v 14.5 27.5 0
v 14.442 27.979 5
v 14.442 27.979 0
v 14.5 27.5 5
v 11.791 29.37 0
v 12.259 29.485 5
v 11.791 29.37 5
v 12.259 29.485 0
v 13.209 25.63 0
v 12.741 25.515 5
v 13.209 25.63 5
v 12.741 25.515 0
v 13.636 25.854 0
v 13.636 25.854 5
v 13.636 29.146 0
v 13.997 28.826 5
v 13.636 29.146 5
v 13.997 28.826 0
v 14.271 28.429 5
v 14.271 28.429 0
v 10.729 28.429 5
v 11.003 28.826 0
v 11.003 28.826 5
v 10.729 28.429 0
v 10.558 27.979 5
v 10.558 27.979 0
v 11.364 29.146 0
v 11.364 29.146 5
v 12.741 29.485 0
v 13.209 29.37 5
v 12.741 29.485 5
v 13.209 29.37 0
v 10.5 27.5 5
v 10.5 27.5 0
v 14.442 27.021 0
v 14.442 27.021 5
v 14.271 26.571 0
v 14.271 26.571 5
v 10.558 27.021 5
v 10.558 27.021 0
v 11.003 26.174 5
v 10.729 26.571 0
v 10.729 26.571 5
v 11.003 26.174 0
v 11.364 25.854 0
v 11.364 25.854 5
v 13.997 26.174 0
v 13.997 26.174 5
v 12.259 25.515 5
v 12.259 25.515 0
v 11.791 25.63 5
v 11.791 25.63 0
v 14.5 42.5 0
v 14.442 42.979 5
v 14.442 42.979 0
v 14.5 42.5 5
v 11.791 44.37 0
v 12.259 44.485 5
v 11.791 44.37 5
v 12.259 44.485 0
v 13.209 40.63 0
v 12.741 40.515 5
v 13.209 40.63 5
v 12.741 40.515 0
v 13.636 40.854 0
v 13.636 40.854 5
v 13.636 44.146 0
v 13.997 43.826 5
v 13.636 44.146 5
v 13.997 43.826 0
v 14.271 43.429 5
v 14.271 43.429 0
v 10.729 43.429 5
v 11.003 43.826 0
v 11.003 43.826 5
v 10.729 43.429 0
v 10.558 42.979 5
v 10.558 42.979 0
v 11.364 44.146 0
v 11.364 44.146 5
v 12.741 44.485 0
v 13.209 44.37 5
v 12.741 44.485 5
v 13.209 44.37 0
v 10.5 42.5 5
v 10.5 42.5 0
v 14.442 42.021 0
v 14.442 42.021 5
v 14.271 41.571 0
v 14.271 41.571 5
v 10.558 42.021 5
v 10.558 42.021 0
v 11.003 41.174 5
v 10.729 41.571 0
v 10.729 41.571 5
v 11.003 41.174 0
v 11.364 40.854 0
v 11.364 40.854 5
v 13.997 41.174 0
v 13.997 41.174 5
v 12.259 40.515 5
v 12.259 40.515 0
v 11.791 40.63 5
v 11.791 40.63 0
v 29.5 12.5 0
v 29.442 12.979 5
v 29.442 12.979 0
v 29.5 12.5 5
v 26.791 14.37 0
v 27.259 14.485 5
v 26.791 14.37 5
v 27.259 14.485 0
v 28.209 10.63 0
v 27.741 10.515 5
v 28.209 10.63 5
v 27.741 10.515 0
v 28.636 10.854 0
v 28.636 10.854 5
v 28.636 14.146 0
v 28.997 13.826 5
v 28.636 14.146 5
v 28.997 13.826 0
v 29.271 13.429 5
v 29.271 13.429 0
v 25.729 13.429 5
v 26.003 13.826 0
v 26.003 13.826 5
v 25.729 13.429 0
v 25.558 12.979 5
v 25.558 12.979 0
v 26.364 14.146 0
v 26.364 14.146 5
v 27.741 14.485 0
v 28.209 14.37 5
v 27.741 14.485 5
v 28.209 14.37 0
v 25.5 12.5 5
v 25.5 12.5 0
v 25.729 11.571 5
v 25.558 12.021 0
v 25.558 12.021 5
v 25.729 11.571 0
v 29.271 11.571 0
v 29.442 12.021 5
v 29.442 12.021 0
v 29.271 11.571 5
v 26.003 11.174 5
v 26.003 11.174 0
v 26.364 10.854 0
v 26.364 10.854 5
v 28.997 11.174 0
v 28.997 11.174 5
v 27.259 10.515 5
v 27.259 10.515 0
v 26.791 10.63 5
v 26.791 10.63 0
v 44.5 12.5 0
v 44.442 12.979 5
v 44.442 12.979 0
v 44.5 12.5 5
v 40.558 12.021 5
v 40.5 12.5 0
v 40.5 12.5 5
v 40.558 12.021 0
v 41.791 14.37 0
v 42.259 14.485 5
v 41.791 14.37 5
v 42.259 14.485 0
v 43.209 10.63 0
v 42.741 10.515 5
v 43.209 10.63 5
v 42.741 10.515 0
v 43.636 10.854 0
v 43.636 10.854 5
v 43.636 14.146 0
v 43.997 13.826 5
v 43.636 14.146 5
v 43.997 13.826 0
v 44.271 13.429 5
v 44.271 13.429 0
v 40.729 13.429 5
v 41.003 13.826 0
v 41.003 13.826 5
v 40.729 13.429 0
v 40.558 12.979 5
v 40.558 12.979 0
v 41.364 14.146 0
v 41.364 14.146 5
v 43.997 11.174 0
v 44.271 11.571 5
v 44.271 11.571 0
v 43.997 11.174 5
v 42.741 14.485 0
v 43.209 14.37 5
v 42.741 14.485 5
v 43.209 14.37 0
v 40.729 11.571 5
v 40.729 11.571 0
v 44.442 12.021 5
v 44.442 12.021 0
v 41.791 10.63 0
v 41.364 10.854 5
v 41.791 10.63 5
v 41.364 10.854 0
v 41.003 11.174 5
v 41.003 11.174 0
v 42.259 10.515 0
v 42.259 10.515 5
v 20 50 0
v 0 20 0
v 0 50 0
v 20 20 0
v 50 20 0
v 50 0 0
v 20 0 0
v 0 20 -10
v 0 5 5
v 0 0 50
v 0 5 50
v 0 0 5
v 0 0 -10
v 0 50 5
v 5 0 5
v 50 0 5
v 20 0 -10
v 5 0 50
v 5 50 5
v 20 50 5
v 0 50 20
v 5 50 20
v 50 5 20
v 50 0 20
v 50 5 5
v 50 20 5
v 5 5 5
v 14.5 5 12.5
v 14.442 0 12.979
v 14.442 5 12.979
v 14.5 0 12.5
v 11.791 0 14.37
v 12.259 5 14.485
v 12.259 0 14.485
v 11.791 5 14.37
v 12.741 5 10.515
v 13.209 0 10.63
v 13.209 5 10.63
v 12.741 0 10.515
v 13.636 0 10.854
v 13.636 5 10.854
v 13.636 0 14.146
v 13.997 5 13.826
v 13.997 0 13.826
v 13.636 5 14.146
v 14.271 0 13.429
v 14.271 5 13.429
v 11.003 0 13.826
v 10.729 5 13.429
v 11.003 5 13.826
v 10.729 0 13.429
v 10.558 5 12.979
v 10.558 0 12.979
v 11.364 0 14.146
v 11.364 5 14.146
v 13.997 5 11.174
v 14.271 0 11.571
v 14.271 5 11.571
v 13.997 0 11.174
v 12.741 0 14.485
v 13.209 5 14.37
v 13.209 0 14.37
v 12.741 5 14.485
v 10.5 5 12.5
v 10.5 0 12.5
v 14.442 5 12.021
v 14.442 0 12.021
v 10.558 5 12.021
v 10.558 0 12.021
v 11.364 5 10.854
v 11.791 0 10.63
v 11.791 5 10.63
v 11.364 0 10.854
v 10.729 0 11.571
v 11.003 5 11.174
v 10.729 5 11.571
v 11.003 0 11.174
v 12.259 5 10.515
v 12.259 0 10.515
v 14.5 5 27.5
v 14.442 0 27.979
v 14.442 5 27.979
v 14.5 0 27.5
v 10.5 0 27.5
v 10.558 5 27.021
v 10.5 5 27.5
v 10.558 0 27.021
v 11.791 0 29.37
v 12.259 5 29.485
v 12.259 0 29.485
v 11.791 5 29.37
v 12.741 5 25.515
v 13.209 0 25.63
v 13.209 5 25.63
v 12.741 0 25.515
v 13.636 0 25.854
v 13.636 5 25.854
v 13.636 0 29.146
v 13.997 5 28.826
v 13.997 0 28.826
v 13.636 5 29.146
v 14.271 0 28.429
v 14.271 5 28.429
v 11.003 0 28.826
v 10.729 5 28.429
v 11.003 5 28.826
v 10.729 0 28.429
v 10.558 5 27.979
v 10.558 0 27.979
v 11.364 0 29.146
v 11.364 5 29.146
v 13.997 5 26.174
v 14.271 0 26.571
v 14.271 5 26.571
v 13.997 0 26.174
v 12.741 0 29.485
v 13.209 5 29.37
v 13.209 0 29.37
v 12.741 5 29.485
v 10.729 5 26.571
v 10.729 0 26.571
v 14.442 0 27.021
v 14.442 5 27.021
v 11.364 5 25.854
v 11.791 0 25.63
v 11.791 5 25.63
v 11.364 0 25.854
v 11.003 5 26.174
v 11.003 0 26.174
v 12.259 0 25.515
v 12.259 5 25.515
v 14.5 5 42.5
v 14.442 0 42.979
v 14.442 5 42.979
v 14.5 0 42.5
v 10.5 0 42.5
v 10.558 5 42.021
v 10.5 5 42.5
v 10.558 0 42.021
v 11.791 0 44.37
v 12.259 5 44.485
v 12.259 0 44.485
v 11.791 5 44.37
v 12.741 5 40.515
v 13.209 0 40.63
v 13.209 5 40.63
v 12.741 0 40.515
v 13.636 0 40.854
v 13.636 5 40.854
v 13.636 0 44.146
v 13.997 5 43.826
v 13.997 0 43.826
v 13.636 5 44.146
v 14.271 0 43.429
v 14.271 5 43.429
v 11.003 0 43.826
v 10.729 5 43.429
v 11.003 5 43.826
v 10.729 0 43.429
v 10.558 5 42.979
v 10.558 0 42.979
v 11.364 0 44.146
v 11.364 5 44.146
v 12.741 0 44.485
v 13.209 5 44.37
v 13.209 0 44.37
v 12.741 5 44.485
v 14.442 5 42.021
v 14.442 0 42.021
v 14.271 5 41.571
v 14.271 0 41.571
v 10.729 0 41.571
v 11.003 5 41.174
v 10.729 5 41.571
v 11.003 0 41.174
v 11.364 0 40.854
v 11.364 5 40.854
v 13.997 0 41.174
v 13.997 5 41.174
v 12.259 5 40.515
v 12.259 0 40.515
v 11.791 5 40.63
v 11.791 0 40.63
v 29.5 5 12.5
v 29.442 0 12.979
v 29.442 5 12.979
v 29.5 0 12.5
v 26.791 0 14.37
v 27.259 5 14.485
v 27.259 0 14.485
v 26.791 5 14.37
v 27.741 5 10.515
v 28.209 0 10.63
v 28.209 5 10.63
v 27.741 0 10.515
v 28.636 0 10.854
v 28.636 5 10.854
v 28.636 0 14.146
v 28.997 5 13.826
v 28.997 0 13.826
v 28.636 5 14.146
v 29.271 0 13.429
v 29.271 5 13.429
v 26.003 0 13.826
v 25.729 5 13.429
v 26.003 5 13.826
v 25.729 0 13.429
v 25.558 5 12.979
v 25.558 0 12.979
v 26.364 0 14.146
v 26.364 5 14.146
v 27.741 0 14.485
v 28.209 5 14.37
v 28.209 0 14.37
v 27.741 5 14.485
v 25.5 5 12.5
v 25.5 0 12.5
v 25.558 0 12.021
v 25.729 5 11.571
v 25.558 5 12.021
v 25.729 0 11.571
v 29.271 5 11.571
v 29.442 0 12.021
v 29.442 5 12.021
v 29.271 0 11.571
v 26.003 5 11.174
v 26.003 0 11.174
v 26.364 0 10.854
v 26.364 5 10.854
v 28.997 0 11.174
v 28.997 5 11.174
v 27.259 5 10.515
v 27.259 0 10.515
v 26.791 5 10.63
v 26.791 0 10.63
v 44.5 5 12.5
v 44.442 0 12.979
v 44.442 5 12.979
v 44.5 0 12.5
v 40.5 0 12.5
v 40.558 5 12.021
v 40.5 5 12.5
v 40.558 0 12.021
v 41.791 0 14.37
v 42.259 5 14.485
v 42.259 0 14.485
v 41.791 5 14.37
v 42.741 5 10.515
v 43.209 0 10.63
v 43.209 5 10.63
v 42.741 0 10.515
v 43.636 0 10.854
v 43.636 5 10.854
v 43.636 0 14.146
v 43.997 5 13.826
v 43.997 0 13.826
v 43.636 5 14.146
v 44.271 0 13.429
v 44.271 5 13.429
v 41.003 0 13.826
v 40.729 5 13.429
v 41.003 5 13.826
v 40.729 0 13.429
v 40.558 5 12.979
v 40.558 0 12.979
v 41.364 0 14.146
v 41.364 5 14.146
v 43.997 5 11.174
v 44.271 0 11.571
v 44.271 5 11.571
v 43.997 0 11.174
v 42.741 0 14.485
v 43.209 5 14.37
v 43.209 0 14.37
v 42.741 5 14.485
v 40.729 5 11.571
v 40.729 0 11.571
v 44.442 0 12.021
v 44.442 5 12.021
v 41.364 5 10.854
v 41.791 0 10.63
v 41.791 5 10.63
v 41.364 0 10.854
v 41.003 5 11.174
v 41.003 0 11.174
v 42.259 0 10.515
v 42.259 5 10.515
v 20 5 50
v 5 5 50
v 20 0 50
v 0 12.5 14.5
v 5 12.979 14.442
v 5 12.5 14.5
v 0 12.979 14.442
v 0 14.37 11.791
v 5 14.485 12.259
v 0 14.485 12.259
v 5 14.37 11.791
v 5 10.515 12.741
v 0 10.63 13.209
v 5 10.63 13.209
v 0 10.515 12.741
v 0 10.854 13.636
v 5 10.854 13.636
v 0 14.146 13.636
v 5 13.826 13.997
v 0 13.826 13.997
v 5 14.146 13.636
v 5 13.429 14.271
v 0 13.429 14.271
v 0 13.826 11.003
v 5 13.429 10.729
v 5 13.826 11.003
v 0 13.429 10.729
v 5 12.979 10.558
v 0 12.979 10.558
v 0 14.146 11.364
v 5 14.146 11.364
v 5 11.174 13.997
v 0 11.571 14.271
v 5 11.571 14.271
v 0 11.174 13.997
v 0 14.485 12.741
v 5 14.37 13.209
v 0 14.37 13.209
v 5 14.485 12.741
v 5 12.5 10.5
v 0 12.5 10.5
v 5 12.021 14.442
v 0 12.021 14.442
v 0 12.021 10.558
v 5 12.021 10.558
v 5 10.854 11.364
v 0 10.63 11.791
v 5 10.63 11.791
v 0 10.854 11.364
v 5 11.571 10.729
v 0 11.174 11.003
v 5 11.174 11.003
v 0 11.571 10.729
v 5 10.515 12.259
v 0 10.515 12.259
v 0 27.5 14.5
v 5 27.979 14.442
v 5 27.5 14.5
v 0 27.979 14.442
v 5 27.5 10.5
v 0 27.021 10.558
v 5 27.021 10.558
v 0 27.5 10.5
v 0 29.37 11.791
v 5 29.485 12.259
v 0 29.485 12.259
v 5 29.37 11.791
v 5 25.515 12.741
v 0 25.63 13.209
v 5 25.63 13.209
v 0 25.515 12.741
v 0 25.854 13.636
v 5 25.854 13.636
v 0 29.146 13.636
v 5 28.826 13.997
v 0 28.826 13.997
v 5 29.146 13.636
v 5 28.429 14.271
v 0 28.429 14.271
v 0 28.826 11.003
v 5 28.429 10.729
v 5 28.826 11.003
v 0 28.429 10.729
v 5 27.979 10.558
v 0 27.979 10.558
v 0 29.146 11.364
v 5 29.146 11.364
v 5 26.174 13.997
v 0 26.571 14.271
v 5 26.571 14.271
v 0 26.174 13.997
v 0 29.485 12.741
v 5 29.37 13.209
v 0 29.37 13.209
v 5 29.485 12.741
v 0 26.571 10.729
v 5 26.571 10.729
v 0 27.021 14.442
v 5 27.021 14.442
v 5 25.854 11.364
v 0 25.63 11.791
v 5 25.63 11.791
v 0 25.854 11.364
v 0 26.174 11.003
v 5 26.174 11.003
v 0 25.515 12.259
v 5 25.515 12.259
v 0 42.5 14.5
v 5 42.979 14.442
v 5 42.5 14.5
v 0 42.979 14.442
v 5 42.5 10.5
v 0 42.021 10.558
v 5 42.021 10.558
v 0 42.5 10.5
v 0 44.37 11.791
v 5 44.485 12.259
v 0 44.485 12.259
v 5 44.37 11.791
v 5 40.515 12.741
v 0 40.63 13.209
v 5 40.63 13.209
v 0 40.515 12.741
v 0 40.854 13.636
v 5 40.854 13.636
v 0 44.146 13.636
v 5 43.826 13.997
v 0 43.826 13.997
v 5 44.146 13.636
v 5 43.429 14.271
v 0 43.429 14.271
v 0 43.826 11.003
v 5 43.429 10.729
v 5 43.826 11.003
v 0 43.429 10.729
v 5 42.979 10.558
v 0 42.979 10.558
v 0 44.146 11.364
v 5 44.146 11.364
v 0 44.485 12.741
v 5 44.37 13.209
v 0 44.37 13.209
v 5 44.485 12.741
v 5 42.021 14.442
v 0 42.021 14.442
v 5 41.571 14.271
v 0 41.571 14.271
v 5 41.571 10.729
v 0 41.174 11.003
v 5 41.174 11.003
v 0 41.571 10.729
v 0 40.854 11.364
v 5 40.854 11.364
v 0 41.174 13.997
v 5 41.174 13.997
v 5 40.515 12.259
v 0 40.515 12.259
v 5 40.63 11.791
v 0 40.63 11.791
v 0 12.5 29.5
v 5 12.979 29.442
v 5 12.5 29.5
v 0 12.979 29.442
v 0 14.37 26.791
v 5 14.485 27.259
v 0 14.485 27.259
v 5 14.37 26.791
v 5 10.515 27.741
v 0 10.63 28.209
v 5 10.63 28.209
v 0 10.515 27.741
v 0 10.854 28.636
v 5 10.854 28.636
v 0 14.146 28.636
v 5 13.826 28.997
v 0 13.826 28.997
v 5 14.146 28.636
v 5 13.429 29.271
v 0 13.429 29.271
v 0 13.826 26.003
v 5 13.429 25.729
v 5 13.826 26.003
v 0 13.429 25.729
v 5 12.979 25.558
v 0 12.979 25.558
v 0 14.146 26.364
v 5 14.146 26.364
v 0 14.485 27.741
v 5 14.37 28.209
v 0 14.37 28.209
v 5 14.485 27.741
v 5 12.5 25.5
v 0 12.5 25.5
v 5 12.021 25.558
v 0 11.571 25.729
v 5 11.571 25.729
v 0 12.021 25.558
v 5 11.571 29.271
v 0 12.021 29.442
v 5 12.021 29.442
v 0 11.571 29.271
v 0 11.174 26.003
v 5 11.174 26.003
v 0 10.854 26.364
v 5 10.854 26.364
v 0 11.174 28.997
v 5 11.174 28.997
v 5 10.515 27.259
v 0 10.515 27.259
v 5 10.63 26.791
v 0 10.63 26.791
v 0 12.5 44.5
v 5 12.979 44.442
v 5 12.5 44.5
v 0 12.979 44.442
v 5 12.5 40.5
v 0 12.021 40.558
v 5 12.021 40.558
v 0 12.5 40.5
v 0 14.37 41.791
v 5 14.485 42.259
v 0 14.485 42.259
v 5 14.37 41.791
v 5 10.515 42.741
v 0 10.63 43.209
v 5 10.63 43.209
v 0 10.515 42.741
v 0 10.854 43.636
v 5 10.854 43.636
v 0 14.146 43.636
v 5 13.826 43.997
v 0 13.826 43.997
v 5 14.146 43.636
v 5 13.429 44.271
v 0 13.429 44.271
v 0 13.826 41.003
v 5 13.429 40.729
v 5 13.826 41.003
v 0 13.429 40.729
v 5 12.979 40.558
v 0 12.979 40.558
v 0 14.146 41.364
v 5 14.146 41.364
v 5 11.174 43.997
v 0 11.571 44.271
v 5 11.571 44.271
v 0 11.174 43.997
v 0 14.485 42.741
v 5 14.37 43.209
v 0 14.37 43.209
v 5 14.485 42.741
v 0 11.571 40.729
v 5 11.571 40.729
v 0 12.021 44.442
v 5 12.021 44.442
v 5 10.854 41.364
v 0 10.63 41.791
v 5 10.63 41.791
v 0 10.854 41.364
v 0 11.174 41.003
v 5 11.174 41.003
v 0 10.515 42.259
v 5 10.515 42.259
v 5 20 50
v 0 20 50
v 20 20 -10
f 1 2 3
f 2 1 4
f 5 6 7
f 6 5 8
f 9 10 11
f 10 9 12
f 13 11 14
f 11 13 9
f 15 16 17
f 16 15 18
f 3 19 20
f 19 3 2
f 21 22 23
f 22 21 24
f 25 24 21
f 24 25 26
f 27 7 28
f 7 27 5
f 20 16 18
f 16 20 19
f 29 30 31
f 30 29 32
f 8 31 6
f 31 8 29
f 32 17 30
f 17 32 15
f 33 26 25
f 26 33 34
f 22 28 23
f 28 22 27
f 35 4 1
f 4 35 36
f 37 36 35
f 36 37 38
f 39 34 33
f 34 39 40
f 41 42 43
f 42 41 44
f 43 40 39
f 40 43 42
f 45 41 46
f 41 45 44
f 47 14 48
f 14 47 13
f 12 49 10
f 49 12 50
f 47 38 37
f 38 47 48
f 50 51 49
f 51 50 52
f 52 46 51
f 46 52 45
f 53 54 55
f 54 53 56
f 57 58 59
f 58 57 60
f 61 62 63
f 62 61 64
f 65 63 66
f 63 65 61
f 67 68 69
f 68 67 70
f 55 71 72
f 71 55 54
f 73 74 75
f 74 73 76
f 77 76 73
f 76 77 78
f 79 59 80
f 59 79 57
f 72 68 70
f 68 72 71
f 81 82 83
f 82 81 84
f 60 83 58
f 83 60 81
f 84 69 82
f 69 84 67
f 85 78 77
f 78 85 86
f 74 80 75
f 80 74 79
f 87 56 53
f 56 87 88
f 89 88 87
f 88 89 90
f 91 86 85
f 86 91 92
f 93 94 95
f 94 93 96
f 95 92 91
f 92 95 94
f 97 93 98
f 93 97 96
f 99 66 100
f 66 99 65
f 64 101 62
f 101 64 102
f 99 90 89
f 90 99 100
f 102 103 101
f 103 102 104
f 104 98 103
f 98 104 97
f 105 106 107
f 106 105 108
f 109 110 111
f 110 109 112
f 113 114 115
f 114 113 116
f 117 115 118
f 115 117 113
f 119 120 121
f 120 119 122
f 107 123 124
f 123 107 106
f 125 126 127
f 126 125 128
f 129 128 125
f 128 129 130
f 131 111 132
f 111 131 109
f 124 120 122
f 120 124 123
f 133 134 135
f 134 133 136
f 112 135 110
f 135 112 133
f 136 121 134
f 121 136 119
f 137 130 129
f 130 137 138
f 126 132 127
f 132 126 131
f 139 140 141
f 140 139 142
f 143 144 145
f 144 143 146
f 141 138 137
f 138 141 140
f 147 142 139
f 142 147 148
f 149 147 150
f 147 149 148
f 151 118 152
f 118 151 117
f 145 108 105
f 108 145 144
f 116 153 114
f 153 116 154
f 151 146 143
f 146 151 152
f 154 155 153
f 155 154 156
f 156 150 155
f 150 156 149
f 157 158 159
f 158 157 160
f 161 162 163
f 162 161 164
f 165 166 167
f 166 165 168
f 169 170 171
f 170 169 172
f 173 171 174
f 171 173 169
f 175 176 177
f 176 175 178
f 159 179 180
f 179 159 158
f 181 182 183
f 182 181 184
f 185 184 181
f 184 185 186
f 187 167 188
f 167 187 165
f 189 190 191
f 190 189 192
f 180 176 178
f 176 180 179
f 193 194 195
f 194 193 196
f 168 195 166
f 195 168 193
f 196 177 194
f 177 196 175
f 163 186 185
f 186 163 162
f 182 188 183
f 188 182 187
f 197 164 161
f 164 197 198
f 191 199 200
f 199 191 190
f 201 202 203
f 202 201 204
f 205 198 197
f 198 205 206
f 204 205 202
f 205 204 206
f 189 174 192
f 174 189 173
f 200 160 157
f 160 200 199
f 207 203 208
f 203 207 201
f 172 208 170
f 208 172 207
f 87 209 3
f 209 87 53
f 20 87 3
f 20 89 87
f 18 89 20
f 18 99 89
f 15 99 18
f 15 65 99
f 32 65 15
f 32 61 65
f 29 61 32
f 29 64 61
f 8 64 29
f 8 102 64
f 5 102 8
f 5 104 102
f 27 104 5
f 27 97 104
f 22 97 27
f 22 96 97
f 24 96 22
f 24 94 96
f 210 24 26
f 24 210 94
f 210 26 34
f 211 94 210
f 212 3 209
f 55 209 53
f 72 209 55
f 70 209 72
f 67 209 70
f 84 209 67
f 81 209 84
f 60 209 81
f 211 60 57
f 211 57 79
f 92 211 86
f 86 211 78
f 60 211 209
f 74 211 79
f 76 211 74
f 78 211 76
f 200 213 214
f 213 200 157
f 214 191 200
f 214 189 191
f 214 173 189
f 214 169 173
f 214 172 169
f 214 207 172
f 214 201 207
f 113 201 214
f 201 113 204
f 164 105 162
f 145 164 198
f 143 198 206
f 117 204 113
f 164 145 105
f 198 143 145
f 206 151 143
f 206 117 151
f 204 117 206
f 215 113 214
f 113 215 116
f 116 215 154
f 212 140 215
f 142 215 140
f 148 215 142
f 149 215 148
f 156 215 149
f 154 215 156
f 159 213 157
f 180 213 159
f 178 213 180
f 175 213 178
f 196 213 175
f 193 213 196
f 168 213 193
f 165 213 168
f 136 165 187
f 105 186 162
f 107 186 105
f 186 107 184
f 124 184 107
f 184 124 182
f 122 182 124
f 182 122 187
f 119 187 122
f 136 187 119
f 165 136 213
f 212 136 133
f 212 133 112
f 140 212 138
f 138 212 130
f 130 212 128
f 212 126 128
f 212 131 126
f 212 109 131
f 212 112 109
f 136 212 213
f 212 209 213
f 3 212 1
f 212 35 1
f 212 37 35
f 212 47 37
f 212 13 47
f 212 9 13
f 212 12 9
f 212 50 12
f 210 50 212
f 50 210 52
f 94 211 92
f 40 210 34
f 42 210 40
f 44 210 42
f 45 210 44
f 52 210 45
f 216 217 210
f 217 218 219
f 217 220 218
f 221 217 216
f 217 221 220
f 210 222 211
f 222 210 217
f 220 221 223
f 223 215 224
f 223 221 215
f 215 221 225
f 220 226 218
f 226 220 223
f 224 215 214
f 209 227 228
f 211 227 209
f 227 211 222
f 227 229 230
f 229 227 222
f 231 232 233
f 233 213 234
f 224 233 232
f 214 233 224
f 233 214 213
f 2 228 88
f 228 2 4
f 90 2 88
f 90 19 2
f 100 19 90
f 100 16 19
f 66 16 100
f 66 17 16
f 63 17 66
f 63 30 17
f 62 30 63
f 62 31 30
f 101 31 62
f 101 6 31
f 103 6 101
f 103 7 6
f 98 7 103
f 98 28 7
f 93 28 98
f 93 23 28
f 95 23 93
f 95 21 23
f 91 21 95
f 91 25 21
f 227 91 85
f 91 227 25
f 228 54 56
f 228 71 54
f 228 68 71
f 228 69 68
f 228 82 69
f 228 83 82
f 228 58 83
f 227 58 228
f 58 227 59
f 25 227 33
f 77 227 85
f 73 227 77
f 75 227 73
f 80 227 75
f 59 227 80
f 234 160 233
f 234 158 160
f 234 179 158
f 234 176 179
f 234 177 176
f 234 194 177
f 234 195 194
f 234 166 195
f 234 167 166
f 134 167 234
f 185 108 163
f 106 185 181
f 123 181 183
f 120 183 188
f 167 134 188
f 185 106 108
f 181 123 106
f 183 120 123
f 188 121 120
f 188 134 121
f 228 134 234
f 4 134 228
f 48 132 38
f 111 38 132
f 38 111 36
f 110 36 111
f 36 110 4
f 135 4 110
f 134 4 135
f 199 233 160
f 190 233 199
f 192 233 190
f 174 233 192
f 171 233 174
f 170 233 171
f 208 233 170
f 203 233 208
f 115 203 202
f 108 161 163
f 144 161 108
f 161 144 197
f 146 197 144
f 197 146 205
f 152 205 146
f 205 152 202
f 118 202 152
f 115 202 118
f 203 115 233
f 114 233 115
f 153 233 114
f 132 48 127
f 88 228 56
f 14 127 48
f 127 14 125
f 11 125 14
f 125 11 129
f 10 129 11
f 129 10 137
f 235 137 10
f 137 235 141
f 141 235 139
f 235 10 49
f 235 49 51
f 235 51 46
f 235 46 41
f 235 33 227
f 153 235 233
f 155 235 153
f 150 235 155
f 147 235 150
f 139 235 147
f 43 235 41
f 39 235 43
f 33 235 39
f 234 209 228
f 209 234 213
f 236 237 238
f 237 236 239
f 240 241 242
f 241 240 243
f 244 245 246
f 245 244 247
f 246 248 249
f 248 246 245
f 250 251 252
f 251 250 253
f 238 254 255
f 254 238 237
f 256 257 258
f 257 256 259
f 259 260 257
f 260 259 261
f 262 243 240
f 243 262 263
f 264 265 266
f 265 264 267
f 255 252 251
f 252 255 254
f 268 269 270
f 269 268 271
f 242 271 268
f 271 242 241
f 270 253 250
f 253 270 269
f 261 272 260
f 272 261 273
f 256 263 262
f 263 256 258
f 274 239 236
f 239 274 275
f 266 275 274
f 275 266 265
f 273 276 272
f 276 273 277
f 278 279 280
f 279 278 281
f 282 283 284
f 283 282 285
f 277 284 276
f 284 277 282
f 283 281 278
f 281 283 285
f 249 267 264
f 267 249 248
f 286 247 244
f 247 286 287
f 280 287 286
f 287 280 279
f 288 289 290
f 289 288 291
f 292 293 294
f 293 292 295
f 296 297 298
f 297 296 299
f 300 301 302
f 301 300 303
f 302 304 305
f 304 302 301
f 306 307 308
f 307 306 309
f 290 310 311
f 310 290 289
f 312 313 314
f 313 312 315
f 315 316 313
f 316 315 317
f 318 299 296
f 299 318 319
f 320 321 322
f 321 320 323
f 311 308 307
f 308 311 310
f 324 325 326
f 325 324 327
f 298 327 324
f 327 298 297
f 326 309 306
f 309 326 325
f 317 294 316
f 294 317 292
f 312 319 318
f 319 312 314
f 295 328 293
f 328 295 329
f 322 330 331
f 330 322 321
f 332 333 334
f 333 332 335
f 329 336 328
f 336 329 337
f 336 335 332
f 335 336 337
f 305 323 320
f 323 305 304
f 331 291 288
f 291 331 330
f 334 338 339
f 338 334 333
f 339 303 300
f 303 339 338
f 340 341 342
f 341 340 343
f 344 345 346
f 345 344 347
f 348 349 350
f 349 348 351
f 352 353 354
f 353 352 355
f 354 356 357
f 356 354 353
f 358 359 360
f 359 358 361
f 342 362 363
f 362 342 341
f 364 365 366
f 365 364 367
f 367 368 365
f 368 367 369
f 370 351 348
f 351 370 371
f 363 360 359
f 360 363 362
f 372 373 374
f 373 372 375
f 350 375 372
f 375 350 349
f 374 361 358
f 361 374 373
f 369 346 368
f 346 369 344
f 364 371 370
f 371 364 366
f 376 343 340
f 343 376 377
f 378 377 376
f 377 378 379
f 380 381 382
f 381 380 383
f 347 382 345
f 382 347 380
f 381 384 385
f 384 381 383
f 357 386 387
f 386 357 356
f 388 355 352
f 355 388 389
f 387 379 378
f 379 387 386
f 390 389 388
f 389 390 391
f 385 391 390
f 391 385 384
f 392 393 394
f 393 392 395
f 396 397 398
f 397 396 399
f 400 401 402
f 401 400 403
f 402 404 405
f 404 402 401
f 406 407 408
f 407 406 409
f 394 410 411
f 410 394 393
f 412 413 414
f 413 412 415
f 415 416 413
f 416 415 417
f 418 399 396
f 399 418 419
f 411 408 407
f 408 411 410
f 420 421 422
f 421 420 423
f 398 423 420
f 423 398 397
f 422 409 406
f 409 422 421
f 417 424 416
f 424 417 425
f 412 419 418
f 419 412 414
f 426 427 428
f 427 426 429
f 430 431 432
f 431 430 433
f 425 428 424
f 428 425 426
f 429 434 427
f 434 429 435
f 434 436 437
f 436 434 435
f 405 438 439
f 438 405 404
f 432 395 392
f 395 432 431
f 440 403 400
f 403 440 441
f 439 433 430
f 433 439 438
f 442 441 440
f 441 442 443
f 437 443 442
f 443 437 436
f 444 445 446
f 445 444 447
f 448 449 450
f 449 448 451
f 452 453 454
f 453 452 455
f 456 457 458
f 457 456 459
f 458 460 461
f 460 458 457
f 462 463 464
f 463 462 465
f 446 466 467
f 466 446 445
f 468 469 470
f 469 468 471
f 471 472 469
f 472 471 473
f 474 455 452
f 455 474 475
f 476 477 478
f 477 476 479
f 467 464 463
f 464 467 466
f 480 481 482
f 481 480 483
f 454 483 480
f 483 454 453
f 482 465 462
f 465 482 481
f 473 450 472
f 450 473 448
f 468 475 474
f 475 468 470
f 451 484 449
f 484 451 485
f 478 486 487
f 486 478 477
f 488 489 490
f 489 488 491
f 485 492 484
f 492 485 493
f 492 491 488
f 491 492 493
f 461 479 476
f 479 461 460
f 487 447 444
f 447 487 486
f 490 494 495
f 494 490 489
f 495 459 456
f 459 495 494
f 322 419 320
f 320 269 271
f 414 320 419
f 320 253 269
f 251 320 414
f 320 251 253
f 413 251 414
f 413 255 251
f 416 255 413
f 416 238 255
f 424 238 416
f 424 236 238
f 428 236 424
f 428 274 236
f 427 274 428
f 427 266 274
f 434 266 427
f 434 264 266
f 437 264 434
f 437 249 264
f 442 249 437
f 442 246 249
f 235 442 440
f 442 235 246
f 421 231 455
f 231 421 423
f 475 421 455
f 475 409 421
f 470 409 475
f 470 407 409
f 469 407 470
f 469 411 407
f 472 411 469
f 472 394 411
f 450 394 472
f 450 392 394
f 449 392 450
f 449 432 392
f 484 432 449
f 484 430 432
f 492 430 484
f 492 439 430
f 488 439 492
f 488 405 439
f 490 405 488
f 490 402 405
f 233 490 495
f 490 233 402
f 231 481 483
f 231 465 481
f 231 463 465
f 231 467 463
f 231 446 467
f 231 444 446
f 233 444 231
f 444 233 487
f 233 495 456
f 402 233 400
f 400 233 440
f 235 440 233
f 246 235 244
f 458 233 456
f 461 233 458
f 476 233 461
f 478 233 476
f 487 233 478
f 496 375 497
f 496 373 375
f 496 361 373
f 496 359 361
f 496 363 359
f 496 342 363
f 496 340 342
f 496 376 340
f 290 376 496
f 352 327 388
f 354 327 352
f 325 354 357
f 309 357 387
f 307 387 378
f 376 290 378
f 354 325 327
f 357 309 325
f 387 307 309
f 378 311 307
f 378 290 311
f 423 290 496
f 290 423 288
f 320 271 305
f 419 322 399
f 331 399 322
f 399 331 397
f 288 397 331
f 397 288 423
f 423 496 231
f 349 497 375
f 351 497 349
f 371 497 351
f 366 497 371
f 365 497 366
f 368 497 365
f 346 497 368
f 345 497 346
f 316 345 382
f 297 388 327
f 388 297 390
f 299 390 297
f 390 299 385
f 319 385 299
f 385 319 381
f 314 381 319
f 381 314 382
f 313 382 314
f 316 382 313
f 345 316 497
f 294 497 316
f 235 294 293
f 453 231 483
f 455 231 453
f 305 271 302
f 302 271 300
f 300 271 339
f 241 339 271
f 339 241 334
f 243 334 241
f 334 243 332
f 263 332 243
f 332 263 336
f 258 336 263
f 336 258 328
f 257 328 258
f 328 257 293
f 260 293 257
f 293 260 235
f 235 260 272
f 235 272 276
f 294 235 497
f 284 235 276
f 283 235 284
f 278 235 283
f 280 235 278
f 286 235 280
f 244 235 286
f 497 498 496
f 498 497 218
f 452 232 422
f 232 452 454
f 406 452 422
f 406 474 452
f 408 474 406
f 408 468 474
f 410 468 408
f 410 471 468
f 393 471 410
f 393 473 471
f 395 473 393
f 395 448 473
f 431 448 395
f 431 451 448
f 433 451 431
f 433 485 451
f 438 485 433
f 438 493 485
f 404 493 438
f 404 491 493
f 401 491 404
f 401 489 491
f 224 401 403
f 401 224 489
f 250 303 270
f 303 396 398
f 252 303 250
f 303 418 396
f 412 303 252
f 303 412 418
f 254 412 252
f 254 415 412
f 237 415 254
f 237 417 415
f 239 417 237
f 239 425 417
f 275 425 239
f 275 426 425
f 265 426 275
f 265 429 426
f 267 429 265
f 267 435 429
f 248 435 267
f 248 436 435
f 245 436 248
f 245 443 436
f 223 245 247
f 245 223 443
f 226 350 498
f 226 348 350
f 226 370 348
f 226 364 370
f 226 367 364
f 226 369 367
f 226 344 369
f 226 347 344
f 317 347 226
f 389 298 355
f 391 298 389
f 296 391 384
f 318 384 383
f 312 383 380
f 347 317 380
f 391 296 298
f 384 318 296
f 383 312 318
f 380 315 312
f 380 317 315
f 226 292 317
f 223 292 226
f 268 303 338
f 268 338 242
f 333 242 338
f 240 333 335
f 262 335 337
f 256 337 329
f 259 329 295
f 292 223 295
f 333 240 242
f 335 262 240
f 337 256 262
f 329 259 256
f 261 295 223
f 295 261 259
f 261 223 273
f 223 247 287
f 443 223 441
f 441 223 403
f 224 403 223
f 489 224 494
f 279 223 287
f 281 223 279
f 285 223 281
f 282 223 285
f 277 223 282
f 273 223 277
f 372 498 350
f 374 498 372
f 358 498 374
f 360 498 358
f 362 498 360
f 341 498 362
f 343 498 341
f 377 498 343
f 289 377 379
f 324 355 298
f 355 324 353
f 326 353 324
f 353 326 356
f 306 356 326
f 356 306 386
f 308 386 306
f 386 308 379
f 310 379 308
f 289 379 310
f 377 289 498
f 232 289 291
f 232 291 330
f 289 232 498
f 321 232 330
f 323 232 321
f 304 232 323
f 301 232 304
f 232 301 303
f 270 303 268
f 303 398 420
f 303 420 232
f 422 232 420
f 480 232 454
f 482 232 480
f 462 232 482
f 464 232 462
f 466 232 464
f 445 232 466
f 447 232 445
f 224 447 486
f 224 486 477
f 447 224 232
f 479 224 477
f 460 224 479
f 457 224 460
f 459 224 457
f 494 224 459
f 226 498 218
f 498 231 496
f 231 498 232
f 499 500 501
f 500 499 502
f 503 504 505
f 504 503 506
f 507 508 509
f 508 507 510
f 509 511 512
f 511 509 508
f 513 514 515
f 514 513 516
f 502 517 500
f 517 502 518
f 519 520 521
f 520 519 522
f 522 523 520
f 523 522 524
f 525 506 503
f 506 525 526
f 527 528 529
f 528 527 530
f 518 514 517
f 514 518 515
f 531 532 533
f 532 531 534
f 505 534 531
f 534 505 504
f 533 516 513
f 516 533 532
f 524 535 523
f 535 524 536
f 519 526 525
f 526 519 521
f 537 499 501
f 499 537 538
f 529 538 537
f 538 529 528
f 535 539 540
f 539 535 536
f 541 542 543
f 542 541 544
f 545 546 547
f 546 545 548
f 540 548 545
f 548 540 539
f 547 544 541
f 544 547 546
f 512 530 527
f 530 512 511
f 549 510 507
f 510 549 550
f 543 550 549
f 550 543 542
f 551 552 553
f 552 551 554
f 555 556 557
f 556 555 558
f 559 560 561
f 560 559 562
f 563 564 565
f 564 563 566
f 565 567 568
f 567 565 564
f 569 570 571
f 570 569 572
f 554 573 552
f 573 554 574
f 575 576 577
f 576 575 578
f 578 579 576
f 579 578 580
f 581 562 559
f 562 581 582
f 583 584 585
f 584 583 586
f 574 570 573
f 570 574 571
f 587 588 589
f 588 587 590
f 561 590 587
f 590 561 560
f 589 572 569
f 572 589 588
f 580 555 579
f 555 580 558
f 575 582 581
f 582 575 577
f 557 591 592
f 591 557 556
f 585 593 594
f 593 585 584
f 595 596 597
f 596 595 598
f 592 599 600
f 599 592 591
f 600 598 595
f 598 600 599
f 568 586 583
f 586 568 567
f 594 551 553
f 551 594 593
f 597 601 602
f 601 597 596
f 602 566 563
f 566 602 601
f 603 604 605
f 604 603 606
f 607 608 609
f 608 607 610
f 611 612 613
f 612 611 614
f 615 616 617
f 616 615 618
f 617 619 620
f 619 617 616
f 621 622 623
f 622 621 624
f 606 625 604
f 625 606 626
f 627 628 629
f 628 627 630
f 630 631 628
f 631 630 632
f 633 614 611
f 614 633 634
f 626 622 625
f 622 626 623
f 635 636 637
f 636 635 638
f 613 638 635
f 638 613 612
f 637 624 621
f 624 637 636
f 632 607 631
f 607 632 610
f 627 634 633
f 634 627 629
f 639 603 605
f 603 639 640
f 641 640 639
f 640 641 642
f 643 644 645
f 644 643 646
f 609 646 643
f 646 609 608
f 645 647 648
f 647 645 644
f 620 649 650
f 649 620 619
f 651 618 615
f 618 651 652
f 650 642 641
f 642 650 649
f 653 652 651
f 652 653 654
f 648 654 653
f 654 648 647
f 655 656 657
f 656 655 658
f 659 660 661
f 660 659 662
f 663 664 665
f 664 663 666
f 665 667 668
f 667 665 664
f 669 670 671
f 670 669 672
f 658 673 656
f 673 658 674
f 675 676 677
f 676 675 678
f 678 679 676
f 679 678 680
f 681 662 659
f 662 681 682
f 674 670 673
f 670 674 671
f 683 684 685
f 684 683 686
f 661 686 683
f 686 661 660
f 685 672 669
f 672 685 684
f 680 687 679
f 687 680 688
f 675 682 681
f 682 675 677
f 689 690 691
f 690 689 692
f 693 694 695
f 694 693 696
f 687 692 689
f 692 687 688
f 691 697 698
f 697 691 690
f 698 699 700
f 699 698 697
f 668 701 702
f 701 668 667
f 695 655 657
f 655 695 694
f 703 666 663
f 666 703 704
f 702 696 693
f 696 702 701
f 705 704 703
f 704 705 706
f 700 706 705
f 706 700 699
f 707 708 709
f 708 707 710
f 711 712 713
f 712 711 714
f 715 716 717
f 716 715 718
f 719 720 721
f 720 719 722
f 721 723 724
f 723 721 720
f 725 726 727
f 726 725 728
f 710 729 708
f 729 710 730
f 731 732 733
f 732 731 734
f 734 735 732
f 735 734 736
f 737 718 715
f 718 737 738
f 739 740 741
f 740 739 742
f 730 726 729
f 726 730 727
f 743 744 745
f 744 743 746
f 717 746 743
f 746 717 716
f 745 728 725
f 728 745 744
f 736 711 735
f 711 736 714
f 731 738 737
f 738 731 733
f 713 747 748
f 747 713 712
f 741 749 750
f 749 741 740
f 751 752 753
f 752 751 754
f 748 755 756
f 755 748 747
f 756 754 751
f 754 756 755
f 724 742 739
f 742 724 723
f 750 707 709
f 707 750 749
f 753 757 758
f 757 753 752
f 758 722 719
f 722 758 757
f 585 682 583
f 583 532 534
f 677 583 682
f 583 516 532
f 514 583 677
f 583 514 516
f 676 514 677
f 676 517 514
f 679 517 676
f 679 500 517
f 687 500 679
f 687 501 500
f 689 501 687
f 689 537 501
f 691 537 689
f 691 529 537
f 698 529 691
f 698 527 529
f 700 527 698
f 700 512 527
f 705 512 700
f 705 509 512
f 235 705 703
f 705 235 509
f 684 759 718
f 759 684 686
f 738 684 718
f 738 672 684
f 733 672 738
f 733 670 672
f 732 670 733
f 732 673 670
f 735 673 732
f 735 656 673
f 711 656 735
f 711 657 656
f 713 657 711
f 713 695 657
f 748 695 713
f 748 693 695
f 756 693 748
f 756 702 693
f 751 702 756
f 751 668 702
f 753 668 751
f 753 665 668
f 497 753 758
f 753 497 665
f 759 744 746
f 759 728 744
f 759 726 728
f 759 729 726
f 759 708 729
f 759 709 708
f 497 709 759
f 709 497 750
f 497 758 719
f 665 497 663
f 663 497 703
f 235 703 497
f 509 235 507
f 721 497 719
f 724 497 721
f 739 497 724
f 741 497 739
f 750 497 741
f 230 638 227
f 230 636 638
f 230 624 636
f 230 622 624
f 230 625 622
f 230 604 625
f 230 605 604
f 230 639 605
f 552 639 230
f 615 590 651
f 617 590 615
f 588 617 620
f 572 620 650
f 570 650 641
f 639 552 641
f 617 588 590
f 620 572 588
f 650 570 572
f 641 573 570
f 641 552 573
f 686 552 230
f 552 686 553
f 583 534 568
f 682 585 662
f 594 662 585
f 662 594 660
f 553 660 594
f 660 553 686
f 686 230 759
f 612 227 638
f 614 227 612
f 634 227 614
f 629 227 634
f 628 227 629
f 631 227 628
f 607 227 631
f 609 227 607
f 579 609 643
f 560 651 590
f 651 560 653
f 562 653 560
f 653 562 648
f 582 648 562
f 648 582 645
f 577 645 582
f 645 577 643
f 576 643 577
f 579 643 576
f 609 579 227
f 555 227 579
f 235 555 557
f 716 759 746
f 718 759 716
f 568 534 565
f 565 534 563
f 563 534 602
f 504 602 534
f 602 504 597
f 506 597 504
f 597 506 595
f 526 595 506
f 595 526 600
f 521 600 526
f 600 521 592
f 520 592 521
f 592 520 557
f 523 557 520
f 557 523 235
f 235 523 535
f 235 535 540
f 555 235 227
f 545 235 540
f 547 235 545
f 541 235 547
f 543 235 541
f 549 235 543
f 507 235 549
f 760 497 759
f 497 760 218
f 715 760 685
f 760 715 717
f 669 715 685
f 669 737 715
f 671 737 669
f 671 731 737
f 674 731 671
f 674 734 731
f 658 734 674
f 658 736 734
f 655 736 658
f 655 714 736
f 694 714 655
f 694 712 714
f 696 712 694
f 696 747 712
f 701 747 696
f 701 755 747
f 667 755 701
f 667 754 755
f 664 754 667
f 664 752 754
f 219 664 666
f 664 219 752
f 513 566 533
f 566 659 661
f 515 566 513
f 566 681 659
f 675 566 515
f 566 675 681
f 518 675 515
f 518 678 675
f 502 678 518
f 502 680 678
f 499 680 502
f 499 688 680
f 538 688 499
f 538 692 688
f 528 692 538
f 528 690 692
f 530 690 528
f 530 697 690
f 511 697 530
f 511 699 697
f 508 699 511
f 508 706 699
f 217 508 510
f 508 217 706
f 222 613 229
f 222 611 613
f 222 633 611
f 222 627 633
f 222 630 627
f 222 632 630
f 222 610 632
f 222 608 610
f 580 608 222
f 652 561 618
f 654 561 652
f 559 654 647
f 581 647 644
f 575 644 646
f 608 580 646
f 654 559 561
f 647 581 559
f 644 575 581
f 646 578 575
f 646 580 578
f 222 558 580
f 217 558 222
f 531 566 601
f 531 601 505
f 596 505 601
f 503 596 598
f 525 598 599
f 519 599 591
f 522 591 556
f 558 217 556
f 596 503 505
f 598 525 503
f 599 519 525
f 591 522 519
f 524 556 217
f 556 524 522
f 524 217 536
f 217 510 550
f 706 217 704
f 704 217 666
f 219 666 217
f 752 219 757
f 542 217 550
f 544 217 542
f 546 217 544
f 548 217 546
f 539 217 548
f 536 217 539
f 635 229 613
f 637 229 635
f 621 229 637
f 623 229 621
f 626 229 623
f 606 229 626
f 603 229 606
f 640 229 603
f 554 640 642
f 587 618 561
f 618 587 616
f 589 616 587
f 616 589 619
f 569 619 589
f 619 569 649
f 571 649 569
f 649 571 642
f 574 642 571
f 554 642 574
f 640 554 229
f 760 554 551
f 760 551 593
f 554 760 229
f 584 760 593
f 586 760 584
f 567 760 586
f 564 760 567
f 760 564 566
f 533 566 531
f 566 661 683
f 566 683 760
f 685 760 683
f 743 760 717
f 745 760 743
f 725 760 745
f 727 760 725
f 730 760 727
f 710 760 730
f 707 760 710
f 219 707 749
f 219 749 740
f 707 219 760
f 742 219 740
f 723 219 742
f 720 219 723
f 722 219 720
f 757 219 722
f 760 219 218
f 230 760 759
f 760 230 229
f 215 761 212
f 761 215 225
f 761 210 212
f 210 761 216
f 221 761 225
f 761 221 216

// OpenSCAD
// file: BracketPentagon.scad
include <Parameters.scad>;
module BracketPentagon(x, y=0, height=bracketThickness, w=extrusionThickness) {
	y = y == 0 ? x : y;
	linear_extrude(height=height) polygon(points=[[0,0],[x,0],[x,w],[w,y],[0,y]]);
}

BracketPentagon(40);
// file: Parameters.scad
/* Frame and Hardware Parameters */
bracketThickness = 5;
extrusionThickness = 15;
narrowScrewHoleSpacing = 15;
wideScrewHoleSpacing = 30;
screwHoleDiam = 4;


/* Design Parameters */
XYSpacing = 20;
platformLength = 153;

/* Gear Parameters */
gearDiam = 30;

/*clamp parameters*/
clampWidth = 30;


/* 608 Bearing Mount Parameters */
bearingHolderWallThickness = 3;
bearingHolderWallHeight = 4;
bearingRadius = 11;

/* rod parameters */
rodClearance = 10;
rodDiam = 8;

/* top bracket parameters */
gearSpacing = 10; // spacing between gear and extrusion
exteriorSpace = 10; // spacing beyond the bearing mount

/* lower bracket parameters */
footHeight = 10;
footDimension = bracketThickness + extrusionThickness;
bracketInnerDimension = 30;

/* nema mount size */
nemaMountSize = 40;
slideyNemaMountSize = 60;

/* Z axis Parameters */
ZSupportSpacing = 50; //how wide the Z supports are
zSupportBeamSpacing = nemaMountSize / 2; //how far the z supports are from the beam

$fs = .5;
$fa = 3;
// main file
include <Parameters.scad>;
use <BracketPentagon.scad>;

bracketFullDimension = bracketThickness + extrusionThickness + bracketInnerDimension;

difference() {
BracketPentagon(x=bracketFullDimension, w=extrusionThickness+bracketThickness);
for (i = [1: (bracketFullDimension - bracketThickness) / narrowScrewHoleSpacing]) {
	translate ([bracketThickness + extrusionThickness/2, bracketThickness + extrusionThickness/2 + narrowScrewHoleSpacing * i, -.5])
		cylinder (h = 100, d = screwHoleDiam);
}
for (i = [1: (bracketFullDimension - bracketThickness) / narrowScrewHoleSpacing]) {
	translate ([bracketThickness + extrusionThickness/2 + narrowScrewHoleSpacing * i, bracketThickness + extrusionThickness/2, -.5])
		cylinder (h = 100, d = screwHoleDiam);
}
}

translate([0, 5, 0])
rotate([90, 0, 0]) 
difference(){
BracketPentagon(x=bracketFullDimension, w=extrusionThickness+bracketThickness);
for (i = [0: (bracketFullDimension - bracketThickness) / narrowScrewHoleSpacing]) {
	translate ([bracketThickness + extrusionThickness/2, bracketThickness + extrusionThickness/2 + narrowScrewHoleSpacing * i, -.5])
		cylinder (h = 100, d = screwHoleDiam);
}
for (i = [0: (bracketFullDimension - bracketThickness) / narrowScrewHoleSpacing]) {
	translate ([bracketThickness + extrusionThickness/2 + narrowScrewHoleSpacing * i, bracketThickness + extrusionThickness/2, -.5])
		cylinder (h = 100, d = screwHoleDiam);
}
}

translate([5, 0, 0])
rotate([0, -90, 0])
difference(){
BracketPentagon(x=bracketFullDimension, w=extrusionThickness+bracketThickness);
for (i = [0: (bracketFullDimension - bracketThickness) / narrowScrewHoleSpacing]) {
	translate ([bracketThickness + extrusionThickness/2, bracketThickness + extrusionThickness/2 + narrowScrewHoleSpacing * i, -.5])
		cylinder (h = 100, d = screwHoleDiam);
}
for (i = [0: (bracketFullDimension - bracketThickness) / narrowScrewHoleSpacing]) {
	translate ([bracketThickness + extrusionThickness/2 + narrowScrewHoleSpacing * i, bracketThickness + extrusionThickness/2, -.5])
		cylinder (h = 100, d = screwHoleDiam);
}
}

translate([0, 0, -footHeight])
cube([footDimension, footDimension, footHeight]);
